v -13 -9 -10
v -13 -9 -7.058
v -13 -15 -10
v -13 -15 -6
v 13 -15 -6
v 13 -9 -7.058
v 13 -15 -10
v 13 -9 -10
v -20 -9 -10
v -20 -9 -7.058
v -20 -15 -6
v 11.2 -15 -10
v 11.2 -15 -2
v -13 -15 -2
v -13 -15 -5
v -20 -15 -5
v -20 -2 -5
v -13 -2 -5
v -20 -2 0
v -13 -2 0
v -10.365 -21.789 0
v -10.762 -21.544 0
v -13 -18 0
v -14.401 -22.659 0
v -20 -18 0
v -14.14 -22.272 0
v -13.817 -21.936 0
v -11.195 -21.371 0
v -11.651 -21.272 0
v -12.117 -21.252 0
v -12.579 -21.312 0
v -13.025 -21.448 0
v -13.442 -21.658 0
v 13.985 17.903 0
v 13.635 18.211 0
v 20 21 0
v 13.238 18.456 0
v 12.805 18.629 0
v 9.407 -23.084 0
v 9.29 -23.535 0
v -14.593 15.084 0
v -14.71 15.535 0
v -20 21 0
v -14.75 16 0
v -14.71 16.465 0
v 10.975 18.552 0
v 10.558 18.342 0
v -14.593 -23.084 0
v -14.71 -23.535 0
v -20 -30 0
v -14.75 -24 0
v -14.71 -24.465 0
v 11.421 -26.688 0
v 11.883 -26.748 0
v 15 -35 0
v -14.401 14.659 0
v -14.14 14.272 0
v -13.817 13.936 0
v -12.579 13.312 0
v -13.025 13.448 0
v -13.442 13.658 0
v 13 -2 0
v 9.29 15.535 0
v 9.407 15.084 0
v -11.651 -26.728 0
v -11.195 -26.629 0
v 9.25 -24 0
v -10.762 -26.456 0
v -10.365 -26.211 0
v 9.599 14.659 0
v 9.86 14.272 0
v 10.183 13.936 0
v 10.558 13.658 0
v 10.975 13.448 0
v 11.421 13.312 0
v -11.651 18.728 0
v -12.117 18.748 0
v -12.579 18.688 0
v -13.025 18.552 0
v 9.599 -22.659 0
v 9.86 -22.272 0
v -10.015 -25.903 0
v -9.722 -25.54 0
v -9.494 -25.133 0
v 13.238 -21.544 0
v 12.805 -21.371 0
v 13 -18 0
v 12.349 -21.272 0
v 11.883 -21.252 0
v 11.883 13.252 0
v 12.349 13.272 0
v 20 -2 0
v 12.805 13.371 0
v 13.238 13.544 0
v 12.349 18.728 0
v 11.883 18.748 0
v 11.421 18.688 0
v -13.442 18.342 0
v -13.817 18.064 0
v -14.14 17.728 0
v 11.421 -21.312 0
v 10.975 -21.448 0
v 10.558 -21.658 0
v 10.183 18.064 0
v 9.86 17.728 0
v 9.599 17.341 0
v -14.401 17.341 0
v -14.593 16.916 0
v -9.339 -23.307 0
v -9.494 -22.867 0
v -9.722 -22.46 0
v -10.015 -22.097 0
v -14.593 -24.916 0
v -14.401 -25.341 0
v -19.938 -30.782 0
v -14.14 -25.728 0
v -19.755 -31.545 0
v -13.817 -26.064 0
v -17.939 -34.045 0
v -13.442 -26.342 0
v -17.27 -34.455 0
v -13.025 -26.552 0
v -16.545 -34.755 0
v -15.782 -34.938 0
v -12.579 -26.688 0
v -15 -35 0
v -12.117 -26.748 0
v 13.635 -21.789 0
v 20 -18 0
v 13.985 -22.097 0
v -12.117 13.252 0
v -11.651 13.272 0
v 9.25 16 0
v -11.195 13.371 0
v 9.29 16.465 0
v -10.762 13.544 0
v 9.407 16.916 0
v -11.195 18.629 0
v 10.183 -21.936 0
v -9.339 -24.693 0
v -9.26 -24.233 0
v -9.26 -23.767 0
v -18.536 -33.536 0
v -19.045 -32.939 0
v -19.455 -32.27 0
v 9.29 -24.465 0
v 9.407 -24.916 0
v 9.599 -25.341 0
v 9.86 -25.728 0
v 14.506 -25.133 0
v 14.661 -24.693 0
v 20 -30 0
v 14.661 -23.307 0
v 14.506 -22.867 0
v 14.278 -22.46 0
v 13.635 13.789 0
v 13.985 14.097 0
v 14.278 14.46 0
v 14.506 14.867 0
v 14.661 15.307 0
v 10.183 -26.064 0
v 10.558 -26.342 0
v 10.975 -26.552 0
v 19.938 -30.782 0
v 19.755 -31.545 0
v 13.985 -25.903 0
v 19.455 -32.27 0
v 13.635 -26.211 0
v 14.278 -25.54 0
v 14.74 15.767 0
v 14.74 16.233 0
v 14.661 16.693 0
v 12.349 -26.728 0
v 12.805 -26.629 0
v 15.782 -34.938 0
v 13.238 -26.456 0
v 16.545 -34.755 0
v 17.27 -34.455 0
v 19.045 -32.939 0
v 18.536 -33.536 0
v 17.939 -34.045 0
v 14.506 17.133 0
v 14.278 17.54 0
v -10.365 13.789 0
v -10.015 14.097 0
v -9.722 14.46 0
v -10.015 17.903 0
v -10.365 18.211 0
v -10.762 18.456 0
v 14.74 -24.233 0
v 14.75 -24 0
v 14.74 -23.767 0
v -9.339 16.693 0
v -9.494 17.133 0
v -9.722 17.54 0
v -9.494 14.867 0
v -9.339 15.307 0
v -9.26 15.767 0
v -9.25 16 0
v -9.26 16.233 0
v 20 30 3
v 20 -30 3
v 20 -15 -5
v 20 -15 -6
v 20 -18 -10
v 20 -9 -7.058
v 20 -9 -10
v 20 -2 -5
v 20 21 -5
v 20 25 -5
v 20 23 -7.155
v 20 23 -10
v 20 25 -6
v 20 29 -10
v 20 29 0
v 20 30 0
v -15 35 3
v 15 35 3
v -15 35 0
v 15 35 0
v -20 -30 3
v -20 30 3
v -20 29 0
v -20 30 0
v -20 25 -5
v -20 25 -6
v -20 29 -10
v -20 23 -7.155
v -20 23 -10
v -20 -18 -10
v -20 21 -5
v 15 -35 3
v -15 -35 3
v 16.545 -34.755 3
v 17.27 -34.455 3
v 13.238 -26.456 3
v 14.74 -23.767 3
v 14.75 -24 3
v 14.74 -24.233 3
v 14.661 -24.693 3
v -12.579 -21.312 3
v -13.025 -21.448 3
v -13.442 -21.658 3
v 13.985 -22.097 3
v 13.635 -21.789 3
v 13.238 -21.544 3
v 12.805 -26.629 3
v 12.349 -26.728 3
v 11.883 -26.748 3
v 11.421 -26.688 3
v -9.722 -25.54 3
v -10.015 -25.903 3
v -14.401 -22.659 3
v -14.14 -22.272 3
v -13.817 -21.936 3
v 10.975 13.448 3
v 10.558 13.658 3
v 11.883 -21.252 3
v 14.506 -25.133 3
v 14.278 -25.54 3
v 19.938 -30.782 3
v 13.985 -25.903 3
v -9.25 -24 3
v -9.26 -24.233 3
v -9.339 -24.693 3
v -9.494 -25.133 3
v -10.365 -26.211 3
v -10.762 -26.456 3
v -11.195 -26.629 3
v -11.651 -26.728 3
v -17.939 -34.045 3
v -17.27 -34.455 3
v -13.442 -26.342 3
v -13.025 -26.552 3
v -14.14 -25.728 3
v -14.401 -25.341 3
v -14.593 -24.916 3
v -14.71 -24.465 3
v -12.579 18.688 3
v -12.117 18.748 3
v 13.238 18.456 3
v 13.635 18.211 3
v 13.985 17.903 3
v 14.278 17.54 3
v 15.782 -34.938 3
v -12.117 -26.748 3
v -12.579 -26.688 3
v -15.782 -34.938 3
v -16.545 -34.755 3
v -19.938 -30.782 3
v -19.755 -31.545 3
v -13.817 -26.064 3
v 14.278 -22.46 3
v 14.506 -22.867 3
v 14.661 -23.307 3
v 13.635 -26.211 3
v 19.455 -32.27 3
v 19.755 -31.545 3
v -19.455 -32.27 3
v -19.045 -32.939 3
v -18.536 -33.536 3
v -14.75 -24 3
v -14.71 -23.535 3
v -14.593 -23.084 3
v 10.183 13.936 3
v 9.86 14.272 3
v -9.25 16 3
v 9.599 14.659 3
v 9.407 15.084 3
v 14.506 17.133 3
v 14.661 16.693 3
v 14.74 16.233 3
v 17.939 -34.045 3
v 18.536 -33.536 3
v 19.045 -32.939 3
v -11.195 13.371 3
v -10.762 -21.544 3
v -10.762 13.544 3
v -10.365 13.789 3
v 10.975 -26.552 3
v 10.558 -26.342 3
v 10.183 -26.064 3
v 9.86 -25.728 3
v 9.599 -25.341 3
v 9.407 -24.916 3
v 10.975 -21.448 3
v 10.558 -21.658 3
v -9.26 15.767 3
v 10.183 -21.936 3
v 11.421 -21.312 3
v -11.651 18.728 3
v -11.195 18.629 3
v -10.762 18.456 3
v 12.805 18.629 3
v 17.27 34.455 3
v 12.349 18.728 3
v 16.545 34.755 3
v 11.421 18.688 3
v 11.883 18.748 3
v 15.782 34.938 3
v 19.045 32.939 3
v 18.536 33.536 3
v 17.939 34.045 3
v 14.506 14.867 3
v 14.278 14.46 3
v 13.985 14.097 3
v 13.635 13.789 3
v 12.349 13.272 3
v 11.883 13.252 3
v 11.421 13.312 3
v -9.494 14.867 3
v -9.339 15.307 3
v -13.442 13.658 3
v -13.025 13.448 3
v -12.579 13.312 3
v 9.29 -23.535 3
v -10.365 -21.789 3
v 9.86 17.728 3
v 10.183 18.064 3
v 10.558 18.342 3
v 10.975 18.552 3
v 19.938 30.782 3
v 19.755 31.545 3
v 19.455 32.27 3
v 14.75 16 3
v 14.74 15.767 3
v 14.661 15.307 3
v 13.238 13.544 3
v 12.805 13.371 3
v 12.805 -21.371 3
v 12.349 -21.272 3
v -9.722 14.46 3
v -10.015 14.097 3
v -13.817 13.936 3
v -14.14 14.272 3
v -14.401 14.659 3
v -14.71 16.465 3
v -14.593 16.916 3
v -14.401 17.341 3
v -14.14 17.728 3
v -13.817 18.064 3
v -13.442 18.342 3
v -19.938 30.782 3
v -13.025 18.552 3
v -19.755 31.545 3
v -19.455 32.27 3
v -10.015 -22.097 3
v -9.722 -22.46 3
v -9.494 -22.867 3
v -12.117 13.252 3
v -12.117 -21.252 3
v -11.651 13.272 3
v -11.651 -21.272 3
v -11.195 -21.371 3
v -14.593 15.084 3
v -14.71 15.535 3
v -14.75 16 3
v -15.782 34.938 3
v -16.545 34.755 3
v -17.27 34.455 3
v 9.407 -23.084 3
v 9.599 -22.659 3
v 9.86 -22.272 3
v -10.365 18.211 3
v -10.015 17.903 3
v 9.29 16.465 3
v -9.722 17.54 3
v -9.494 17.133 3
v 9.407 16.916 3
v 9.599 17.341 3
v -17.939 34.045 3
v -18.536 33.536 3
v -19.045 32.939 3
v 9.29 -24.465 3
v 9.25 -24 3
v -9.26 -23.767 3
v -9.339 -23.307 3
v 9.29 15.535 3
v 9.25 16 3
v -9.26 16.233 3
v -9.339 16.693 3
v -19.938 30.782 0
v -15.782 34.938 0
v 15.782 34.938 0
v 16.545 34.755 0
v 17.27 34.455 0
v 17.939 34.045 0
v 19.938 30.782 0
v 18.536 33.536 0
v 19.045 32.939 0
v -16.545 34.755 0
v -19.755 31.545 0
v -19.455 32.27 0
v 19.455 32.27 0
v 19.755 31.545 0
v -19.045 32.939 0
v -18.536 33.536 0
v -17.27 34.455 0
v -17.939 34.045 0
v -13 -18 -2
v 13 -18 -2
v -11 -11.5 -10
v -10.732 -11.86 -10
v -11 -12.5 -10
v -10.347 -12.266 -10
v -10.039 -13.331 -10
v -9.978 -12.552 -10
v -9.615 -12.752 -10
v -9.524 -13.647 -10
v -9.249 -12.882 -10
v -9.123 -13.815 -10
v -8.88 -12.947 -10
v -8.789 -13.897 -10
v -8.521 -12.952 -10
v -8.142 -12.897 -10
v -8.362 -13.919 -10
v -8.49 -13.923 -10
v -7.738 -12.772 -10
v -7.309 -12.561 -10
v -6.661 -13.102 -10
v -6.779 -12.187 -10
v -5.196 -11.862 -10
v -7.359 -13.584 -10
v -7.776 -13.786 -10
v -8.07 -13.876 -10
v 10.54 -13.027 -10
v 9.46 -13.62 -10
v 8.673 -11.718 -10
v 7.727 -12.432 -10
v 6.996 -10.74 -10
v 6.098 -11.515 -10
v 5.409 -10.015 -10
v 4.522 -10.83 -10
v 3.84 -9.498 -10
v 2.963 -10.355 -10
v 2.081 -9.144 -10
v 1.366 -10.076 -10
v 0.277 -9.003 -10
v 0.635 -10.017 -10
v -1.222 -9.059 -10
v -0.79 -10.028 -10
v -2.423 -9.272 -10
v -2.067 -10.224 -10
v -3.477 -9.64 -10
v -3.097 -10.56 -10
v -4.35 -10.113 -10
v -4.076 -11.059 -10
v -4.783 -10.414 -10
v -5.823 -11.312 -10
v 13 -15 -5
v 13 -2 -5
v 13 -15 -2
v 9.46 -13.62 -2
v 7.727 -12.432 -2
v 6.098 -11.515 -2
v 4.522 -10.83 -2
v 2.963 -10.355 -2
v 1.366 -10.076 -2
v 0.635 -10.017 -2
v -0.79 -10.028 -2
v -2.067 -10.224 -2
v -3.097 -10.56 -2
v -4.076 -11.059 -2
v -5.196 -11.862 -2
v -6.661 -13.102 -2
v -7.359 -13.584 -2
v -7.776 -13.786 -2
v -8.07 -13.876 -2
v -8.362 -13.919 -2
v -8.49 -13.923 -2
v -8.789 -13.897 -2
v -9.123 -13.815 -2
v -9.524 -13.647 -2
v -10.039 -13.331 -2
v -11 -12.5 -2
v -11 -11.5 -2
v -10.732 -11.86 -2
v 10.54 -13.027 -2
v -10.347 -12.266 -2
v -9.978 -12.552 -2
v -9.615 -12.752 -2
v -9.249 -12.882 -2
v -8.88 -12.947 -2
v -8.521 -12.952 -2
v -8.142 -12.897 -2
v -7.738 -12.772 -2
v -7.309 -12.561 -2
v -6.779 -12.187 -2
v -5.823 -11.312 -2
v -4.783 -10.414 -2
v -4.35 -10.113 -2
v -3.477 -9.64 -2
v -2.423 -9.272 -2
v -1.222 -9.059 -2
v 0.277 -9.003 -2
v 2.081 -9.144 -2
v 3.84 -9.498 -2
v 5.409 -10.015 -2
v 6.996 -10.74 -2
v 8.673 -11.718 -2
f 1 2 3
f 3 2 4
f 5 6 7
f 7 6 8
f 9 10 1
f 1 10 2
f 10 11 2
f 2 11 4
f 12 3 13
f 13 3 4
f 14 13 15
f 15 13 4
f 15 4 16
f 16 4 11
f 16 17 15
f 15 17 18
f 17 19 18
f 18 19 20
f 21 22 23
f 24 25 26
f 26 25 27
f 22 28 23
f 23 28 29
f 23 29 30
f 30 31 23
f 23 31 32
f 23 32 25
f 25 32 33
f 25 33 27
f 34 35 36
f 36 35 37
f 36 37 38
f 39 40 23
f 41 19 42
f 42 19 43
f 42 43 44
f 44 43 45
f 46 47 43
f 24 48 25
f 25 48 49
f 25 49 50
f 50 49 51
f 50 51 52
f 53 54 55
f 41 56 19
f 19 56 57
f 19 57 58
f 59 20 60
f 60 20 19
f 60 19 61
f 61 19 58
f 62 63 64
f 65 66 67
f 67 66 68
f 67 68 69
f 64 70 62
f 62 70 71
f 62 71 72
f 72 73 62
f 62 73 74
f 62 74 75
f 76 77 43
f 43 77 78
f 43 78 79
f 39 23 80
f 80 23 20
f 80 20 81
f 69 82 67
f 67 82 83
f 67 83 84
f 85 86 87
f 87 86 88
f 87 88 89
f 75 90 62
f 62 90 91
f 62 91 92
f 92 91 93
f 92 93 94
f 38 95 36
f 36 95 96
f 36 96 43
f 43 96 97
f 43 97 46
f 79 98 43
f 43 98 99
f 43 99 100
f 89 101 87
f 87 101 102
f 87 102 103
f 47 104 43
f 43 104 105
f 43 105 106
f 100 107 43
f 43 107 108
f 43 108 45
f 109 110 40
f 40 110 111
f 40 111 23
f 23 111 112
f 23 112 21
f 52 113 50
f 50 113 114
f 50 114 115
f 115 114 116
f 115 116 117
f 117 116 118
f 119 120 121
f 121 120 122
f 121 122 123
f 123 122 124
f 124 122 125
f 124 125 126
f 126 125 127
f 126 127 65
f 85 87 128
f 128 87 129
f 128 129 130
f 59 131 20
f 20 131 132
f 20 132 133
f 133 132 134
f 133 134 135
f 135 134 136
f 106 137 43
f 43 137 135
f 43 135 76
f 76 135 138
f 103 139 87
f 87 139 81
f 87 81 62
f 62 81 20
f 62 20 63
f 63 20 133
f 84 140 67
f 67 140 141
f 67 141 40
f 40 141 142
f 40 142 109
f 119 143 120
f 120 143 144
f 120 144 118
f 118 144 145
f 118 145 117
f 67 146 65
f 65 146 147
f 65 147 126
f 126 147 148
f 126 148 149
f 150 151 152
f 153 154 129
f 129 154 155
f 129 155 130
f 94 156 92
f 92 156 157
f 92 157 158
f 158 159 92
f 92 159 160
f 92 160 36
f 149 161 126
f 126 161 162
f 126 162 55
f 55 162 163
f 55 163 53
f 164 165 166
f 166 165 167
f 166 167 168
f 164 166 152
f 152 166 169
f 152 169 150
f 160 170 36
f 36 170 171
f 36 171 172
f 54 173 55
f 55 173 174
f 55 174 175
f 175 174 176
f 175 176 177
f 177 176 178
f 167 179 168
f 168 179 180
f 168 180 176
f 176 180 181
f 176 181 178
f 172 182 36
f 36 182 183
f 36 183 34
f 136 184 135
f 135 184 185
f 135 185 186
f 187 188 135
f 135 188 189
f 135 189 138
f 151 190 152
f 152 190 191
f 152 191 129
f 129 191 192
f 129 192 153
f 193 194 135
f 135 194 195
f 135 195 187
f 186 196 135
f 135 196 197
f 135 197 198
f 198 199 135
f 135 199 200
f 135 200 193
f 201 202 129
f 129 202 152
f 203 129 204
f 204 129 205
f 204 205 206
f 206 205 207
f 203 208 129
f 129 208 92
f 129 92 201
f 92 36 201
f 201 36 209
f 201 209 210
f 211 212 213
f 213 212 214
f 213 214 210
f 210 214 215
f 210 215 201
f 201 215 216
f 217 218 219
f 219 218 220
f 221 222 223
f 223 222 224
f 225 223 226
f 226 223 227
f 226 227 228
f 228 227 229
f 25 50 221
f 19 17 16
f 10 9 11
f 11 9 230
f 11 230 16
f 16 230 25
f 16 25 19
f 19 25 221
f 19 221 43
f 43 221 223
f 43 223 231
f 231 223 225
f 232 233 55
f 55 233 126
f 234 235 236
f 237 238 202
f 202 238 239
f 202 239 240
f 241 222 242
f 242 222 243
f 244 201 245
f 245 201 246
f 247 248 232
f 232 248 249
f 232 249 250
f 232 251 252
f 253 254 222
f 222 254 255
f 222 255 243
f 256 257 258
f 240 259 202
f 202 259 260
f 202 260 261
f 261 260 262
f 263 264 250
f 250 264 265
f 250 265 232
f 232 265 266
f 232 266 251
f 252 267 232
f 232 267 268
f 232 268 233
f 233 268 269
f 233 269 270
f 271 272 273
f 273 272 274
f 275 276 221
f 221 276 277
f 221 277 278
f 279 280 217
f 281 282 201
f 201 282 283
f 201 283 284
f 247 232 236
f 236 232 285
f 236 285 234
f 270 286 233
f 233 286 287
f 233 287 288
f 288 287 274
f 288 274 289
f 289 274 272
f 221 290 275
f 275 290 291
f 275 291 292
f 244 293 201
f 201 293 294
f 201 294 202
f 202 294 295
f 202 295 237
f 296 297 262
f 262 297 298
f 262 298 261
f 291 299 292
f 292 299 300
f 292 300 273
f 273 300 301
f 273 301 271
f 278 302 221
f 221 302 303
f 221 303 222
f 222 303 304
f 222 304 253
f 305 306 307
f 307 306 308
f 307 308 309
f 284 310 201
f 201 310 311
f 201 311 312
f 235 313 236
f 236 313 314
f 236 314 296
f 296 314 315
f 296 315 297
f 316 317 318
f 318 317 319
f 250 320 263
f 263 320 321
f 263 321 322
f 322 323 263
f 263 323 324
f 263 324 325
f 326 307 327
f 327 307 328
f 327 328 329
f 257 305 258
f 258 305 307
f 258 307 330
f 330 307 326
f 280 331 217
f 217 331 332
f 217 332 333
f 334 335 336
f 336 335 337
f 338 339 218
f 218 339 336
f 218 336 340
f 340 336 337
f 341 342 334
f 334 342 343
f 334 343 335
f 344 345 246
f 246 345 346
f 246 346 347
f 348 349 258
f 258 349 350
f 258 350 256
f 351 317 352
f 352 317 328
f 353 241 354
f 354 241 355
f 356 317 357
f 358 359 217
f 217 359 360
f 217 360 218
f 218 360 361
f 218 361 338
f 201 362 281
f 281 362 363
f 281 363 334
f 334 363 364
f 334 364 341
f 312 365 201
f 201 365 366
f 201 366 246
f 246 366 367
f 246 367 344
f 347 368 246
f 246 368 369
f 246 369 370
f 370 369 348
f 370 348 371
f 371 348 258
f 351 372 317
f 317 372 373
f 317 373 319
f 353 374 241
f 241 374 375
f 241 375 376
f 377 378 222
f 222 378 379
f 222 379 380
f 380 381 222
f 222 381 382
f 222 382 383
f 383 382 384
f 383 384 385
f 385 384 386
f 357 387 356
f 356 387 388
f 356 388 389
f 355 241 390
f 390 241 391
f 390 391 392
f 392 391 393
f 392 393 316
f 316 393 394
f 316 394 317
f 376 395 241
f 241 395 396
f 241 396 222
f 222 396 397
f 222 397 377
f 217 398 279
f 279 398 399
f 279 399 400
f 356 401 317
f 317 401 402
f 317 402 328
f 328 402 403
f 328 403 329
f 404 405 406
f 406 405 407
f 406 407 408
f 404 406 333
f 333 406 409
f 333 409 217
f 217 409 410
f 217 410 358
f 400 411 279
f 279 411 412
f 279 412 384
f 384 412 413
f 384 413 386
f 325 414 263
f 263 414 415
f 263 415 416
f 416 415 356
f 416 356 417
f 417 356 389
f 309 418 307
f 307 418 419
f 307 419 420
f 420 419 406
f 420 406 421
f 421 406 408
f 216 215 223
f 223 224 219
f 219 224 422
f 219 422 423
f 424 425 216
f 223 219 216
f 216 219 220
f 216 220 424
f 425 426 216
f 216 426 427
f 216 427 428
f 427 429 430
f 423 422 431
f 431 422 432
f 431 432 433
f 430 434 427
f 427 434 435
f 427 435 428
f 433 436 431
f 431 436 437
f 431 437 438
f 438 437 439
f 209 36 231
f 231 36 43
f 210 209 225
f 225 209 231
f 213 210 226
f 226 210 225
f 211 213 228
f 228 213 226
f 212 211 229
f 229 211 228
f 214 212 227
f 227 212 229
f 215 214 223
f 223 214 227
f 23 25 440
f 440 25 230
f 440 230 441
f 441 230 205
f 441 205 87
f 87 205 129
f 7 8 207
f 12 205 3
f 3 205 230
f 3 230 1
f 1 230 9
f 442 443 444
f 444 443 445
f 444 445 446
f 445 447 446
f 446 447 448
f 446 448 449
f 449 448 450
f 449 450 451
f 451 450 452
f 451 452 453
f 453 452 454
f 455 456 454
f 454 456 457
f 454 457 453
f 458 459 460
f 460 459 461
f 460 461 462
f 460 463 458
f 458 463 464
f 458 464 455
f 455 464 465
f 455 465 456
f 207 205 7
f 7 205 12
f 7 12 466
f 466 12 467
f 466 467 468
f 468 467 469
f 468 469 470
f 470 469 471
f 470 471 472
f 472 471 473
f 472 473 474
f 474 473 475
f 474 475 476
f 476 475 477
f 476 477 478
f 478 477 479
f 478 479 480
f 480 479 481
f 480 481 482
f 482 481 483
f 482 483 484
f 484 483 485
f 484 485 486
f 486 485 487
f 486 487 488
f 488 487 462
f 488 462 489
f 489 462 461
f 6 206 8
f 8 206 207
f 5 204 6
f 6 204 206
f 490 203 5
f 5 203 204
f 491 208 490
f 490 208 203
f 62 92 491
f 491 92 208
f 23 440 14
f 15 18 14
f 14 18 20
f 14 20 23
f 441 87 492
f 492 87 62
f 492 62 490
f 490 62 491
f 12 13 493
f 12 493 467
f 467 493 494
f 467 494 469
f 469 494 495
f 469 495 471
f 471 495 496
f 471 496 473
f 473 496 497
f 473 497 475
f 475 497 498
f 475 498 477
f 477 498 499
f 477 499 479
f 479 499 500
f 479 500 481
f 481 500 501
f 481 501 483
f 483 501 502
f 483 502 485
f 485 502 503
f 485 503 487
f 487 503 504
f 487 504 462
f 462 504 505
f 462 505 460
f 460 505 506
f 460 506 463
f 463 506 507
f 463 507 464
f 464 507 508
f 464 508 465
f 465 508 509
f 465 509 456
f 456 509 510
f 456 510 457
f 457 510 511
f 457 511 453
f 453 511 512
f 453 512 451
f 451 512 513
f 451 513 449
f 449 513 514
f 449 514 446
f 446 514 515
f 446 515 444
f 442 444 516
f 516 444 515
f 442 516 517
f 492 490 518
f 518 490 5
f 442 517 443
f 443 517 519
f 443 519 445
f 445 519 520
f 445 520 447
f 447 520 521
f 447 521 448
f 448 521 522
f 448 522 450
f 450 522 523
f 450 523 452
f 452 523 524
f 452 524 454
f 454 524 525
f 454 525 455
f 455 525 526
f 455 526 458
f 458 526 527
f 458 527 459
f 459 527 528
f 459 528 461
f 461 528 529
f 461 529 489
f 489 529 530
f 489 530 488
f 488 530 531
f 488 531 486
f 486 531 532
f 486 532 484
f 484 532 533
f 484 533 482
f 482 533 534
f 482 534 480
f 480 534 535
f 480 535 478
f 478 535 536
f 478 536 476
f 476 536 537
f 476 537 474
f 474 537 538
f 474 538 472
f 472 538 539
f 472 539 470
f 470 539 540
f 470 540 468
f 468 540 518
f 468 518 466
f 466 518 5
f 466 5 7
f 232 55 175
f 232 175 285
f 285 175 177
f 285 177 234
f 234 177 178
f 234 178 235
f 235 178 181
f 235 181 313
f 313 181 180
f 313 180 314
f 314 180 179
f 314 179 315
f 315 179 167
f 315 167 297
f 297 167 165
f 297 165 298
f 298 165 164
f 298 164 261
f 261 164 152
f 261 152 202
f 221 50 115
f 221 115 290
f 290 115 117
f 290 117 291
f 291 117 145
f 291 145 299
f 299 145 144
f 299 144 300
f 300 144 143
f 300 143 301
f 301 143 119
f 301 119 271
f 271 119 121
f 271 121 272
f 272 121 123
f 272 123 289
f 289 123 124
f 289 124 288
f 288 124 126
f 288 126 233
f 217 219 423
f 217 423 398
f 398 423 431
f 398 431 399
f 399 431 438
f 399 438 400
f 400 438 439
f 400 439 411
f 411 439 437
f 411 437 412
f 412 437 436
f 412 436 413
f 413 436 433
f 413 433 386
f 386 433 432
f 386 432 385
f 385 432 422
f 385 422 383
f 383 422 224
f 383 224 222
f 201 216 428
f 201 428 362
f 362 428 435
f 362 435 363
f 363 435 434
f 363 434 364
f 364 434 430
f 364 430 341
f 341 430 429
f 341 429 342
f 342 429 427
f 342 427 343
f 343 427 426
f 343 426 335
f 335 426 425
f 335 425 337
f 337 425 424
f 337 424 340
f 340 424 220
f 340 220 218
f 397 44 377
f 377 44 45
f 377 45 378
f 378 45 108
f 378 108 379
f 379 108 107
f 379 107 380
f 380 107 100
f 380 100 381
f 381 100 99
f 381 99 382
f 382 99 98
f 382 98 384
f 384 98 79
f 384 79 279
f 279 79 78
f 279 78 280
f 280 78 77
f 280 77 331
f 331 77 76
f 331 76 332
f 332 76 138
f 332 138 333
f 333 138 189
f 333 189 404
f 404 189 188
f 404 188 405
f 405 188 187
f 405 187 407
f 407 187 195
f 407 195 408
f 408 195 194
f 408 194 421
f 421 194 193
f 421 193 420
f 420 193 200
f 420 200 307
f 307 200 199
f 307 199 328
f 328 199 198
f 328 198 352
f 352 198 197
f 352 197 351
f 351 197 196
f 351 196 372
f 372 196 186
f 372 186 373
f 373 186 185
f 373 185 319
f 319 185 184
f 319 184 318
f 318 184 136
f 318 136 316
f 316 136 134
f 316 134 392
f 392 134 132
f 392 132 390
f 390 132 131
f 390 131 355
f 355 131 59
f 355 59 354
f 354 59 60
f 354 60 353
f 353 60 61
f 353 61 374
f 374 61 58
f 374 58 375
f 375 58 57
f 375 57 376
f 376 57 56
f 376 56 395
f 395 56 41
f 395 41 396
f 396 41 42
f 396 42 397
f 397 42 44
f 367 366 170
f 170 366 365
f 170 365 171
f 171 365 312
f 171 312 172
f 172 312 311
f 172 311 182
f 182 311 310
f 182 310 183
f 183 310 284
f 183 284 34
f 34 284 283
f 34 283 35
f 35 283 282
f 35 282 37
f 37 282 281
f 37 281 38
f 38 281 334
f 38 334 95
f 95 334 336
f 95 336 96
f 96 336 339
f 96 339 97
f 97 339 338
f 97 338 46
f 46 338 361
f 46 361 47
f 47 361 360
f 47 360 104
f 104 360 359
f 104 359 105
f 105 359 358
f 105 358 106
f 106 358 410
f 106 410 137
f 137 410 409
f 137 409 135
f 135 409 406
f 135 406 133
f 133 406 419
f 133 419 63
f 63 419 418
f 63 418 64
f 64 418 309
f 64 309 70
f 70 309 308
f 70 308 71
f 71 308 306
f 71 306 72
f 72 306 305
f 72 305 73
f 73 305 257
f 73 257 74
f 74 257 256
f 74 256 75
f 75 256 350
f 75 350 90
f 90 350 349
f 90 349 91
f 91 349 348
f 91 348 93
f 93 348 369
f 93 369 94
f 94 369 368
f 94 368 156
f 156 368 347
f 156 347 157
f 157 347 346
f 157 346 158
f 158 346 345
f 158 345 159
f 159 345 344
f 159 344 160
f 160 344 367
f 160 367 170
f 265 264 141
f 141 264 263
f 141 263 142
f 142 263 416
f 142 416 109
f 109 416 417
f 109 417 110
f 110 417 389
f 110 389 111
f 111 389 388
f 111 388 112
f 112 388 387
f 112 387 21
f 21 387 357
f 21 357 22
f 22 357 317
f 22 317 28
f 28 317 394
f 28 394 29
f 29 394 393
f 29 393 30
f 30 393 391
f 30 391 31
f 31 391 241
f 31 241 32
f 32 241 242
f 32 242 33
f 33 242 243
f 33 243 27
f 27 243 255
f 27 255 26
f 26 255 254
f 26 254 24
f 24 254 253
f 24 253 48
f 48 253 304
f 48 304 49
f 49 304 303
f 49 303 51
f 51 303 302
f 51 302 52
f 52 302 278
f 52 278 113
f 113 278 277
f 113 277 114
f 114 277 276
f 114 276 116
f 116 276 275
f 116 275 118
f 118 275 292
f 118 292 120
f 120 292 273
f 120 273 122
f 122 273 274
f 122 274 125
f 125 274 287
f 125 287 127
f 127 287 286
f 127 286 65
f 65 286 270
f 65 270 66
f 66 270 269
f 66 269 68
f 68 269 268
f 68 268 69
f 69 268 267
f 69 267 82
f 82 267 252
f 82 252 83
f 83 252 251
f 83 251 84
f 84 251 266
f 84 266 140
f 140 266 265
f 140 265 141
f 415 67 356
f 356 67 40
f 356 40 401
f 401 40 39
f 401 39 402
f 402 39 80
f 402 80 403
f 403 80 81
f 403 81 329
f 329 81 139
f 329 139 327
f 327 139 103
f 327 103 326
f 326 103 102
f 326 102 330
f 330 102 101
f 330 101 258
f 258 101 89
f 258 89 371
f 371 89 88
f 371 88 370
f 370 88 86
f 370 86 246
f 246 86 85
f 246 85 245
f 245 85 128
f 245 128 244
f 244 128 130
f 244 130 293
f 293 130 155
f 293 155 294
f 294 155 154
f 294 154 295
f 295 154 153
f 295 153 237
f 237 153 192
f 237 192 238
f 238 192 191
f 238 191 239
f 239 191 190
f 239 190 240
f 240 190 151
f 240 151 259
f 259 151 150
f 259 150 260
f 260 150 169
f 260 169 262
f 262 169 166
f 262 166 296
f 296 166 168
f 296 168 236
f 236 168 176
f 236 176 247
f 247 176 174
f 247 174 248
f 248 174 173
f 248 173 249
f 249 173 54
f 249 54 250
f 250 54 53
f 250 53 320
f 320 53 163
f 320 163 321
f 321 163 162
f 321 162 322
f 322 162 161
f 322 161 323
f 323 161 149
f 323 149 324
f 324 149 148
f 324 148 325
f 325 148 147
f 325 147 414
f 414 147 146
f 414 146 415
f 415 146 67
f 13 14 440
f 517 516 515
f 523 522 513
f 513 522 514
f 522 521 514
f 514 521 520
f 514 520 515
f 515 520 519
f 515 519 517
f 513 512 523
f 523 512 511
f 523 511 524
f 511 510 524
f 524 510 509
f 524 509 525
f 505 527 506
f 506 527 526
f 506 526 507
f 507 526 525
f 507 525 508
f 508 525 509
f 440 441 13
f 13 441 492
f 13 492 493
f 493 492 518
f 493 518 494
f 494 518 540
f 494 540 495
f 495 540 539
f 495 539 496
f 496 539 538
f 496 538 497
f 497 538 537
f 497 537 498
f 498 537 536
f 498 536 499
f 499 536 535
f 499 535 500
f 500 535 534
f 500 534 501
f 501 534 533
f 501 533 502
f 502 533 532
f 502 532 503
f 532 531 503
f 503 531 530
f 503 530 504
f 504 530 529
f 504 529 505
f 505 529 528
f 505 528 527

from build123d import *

# Parameters (mm, degrees)
SKETCH1_W           = 40
SKETCH1_H           = 70
BOSS_EXTRUDE1_DEPTH = 3
BOSS_EXTRUDE2_DEPTH = 20
BOSS_EXTRUDE3_DEPTH = 20
CUT_EXTRUDE1_DEPTH  = 13
BOSS_EXTRUDE4_DEPTH = 10
FILLET1_R           = 5
CUT_EXTRUDE2_REACH  = 43.533
SKETCH5_R           = 2.75
CUT_EXTRUDE4_DEPTH  = 2


with BuildPart() as part:
    # Sketch1 → Boss-Extrude1 (new body)
    with BuildSketch(Plane.XY):
        Rectangle(SKETCH1_W, SKETCH1_H)
    extrude(amount=BOSS_EXTRUDE1_DEPTH)

    # Sketch2 → Boss-Extrude2 (add, symmetric)
    with BuildSketch(Plane(origin=(0, 0, 0), x_dir=(0, 0, -1), z_dir=(1, 0, 0))):
        Polygon((0, 29), (10, 29), (10, 23), (7.154700538, 23), (6, 25), (5, 25), (5, 21), (0, 21), align=None)
    extrude(amount=BOSS_EXTRUDE2_DEPTH, both=True)

    # Sketch3 → Boss-Extrude3 (add, symmetric)
    with BuildSketch(Plane(origin=(0, 0, 0), x_dir=(0, 0, -1), z_dir=(1, 0, 0))):
        Polygon((0, -18), (10, -18), (10, -9), (7.057961884, -9), (6, -15), (5, -15), (5, -2), (0, -2), align=None)
    extrude(amount=BOSS_EXTRUDE3_DEPTH, both=True)

    # Sketch3<2> → Cut-Extrude1 (cut, symmetric)
    with BuildSketch(Plane(origin=(0, 0, 0), x_dir=(0, 0, -1), z_dir=(1, 0, 0))):
        Polygon((0, -18), (10, -18), (10, -9), (7.057961884, -9), (6, -15), (5, -15), (5, -2), (0, -2), align=None)
    extrude(amount=CUT_EXTRUDE1_DEPTH, both=True, mode=Mode.SUBTRACT)

    # Sketch4 → Boss-Extrude4 (add)
    with BuildSketch(Plane.XY):
        with BuildLine():
            Line((13, -18), (-13, -18))
            Line((-13, -18), (-13, -15))
            Line((-13, -15), (11.2, -15))
            add(Edge.make_bspline(
                [(11.2, -15), (7.988659261, -12.305365171), (4.131076897, -9.981226783), (-4.059161179, -9.974707843), (-6.438372816, -13.757567443), (-9.210423341, -14.299843052), (-11, -12.5)],
                knots=[0, 0, 0, 0, 0.361861055, 0.44515142, 0.789820069, 1, 1, 1, 1], degree=3))
            Line((-11, -12.5), (-11, -11.5))
            add(Edge.make_bspline(
                [(13, -15), (9.091847393, -11.720670589), (5.160163517, -9.012654879), (-4.52853577, -8.942546967), (-6.581487755, -13.325064148), (-9.8688482, -13.174994697), (-11, -11.5)],
                knots=[0, 0, 0, 0, 0.360137541, 0.439165428, 0.751266273, 1, 1, 1, 1], degree=3))
            Line((13, -15), (13, -18))
        make_face()
    extrude(amount=-BOSS_EXTRUDE4_DEPTH)

    # Fillet1
    fillet1_edges = [part.edges().sort_by_distance(p)[0] for p in [
        (20, -35, 1.5),
        (-20, -35, 1.5),
        (-20, 35, 1.5),
        (20, 35, 1.5),
    ]]
    fillet(fillet1_edges, radius=FILLET1_R)

    # Sketch5 → Cut-Extrude2 (cut, up to next)
    with BuildSketch(Plane.XY, mode=Mode.PRIVATE) as cut_extrude2_sk1:
        with Locations((-12, 16)):
            Circle(SKETCH5_R)
    cut_extrude2_tool1 = extrude(cut_extrude2_sk1.sketch, amount=CUT_EXTRUDE2_REACH, mode=Mode.PRIVATE) & part.part
    # Sketch5 → Cut-Extrude2 (cut, up to next)
    with BuildSketch(Plane.XY, mode=Mode.PRIVATE) as cut_extrude2_sk2:
        with Locations((12, 16)):
            Circle(SKETCH5_R)
    cut_extrude2_tool2 = extrude(cut_extrude2_sk2.sketch, amount=CUT_EXTRUDE2_REACH, mode=Mode.PRIVATE) & part.part
    # Sketch5 → Cut-Extrude2 (cut, up to next)
    with BuildSketch(Plane.XY, mode=Mode.PRIVATE) as cut_extrude2_sk3:
        with Locations((-12, -24)):
            Circle(SKETCH5_R)
    cut_extrude2_tool3 = extrude(cut_extrude2_sk3.sketch, amount=CUT_EXTRUDE2_REACH, mode=Mode.PRIVATE) & part.part
    # Sketch5 → Cut-Extrude2 (cut, up to next)
    with BuildSketch(Plane.XY, mode=Mode.PRIVATE) as cut_extrude2_sk4:
        with Locations((12, -24)):
            Circle(SKETCH5_R)
    cut_extrude2_tool4 = extrude(cut_extrude2_sk4.sketch, amount=CUT_EXTRUDE2_REACH, mode=Mode.PRIVATE) & part.part
    add(cut_extrude2_tool1.solids().sort_by_distance((-12, 16, 0))[0], mode=Mode.SUBTRACT)
    add(cut_extrude2_tool2.solids().sort_by_distance((12, 16, 0))[0], mode=Mode.SUBTRACT)
    add(cut_extrude2_tool3.solids().sort_by_distance((-12, -24, 0))[0], mode=Mode.SUBTRACT)
    add(cut_extrude2_tool4.solids().sort_by_distance((12, -24, 0))[0], mode=Mode.SUBTRACT)

    # Sketch4<2> → Cut-Extrude4 (cut)
    with BuildSketch(Plane.XY):
        with BuildLine():
            Line((13, -18), (-13, -18))
            Line((-13, -18), (-13, -15))
            Line((-13, -15), (11.2, -15))
            add(Edge.make_bspline(
                [(11.2, -15), (7.988659261, -12.305365171), (4.131076897, -9.981226783), (-4.059161179, -9.974707843), (-6.438372816, -13.757567443), (-9.210423341, -14.299843052), (-11, -12.5)],
                knots=[0, 0, 0, 0, 0.361861055, 0.44515142, 0.789820069, 1, 1, 1, 1], degree=3))
            Line((-11, -12.5), (-11, -11.5))
            add(Edge.make_bspline(
                [(13, -15), (9.091847393, -11.720670589), (5.160163517, -9.012654879), (-4.52853577, -8.942546967), (-6.581487755, -13.325064148), (-9.8688482, -13.174994697), (-11, -11.5)],
                knots=[0, 0, 0, 0, 0.360137541, 0.439165428, 0.751266273, 1, 1, 1, 1], degree=3))
            Line((13, -15), (13, -18))
        make_face()
    extrude(amount=-CUT_EXTRUDE4_DEPTH, mode=Mode.SUBTRACT)


solid = part.part
